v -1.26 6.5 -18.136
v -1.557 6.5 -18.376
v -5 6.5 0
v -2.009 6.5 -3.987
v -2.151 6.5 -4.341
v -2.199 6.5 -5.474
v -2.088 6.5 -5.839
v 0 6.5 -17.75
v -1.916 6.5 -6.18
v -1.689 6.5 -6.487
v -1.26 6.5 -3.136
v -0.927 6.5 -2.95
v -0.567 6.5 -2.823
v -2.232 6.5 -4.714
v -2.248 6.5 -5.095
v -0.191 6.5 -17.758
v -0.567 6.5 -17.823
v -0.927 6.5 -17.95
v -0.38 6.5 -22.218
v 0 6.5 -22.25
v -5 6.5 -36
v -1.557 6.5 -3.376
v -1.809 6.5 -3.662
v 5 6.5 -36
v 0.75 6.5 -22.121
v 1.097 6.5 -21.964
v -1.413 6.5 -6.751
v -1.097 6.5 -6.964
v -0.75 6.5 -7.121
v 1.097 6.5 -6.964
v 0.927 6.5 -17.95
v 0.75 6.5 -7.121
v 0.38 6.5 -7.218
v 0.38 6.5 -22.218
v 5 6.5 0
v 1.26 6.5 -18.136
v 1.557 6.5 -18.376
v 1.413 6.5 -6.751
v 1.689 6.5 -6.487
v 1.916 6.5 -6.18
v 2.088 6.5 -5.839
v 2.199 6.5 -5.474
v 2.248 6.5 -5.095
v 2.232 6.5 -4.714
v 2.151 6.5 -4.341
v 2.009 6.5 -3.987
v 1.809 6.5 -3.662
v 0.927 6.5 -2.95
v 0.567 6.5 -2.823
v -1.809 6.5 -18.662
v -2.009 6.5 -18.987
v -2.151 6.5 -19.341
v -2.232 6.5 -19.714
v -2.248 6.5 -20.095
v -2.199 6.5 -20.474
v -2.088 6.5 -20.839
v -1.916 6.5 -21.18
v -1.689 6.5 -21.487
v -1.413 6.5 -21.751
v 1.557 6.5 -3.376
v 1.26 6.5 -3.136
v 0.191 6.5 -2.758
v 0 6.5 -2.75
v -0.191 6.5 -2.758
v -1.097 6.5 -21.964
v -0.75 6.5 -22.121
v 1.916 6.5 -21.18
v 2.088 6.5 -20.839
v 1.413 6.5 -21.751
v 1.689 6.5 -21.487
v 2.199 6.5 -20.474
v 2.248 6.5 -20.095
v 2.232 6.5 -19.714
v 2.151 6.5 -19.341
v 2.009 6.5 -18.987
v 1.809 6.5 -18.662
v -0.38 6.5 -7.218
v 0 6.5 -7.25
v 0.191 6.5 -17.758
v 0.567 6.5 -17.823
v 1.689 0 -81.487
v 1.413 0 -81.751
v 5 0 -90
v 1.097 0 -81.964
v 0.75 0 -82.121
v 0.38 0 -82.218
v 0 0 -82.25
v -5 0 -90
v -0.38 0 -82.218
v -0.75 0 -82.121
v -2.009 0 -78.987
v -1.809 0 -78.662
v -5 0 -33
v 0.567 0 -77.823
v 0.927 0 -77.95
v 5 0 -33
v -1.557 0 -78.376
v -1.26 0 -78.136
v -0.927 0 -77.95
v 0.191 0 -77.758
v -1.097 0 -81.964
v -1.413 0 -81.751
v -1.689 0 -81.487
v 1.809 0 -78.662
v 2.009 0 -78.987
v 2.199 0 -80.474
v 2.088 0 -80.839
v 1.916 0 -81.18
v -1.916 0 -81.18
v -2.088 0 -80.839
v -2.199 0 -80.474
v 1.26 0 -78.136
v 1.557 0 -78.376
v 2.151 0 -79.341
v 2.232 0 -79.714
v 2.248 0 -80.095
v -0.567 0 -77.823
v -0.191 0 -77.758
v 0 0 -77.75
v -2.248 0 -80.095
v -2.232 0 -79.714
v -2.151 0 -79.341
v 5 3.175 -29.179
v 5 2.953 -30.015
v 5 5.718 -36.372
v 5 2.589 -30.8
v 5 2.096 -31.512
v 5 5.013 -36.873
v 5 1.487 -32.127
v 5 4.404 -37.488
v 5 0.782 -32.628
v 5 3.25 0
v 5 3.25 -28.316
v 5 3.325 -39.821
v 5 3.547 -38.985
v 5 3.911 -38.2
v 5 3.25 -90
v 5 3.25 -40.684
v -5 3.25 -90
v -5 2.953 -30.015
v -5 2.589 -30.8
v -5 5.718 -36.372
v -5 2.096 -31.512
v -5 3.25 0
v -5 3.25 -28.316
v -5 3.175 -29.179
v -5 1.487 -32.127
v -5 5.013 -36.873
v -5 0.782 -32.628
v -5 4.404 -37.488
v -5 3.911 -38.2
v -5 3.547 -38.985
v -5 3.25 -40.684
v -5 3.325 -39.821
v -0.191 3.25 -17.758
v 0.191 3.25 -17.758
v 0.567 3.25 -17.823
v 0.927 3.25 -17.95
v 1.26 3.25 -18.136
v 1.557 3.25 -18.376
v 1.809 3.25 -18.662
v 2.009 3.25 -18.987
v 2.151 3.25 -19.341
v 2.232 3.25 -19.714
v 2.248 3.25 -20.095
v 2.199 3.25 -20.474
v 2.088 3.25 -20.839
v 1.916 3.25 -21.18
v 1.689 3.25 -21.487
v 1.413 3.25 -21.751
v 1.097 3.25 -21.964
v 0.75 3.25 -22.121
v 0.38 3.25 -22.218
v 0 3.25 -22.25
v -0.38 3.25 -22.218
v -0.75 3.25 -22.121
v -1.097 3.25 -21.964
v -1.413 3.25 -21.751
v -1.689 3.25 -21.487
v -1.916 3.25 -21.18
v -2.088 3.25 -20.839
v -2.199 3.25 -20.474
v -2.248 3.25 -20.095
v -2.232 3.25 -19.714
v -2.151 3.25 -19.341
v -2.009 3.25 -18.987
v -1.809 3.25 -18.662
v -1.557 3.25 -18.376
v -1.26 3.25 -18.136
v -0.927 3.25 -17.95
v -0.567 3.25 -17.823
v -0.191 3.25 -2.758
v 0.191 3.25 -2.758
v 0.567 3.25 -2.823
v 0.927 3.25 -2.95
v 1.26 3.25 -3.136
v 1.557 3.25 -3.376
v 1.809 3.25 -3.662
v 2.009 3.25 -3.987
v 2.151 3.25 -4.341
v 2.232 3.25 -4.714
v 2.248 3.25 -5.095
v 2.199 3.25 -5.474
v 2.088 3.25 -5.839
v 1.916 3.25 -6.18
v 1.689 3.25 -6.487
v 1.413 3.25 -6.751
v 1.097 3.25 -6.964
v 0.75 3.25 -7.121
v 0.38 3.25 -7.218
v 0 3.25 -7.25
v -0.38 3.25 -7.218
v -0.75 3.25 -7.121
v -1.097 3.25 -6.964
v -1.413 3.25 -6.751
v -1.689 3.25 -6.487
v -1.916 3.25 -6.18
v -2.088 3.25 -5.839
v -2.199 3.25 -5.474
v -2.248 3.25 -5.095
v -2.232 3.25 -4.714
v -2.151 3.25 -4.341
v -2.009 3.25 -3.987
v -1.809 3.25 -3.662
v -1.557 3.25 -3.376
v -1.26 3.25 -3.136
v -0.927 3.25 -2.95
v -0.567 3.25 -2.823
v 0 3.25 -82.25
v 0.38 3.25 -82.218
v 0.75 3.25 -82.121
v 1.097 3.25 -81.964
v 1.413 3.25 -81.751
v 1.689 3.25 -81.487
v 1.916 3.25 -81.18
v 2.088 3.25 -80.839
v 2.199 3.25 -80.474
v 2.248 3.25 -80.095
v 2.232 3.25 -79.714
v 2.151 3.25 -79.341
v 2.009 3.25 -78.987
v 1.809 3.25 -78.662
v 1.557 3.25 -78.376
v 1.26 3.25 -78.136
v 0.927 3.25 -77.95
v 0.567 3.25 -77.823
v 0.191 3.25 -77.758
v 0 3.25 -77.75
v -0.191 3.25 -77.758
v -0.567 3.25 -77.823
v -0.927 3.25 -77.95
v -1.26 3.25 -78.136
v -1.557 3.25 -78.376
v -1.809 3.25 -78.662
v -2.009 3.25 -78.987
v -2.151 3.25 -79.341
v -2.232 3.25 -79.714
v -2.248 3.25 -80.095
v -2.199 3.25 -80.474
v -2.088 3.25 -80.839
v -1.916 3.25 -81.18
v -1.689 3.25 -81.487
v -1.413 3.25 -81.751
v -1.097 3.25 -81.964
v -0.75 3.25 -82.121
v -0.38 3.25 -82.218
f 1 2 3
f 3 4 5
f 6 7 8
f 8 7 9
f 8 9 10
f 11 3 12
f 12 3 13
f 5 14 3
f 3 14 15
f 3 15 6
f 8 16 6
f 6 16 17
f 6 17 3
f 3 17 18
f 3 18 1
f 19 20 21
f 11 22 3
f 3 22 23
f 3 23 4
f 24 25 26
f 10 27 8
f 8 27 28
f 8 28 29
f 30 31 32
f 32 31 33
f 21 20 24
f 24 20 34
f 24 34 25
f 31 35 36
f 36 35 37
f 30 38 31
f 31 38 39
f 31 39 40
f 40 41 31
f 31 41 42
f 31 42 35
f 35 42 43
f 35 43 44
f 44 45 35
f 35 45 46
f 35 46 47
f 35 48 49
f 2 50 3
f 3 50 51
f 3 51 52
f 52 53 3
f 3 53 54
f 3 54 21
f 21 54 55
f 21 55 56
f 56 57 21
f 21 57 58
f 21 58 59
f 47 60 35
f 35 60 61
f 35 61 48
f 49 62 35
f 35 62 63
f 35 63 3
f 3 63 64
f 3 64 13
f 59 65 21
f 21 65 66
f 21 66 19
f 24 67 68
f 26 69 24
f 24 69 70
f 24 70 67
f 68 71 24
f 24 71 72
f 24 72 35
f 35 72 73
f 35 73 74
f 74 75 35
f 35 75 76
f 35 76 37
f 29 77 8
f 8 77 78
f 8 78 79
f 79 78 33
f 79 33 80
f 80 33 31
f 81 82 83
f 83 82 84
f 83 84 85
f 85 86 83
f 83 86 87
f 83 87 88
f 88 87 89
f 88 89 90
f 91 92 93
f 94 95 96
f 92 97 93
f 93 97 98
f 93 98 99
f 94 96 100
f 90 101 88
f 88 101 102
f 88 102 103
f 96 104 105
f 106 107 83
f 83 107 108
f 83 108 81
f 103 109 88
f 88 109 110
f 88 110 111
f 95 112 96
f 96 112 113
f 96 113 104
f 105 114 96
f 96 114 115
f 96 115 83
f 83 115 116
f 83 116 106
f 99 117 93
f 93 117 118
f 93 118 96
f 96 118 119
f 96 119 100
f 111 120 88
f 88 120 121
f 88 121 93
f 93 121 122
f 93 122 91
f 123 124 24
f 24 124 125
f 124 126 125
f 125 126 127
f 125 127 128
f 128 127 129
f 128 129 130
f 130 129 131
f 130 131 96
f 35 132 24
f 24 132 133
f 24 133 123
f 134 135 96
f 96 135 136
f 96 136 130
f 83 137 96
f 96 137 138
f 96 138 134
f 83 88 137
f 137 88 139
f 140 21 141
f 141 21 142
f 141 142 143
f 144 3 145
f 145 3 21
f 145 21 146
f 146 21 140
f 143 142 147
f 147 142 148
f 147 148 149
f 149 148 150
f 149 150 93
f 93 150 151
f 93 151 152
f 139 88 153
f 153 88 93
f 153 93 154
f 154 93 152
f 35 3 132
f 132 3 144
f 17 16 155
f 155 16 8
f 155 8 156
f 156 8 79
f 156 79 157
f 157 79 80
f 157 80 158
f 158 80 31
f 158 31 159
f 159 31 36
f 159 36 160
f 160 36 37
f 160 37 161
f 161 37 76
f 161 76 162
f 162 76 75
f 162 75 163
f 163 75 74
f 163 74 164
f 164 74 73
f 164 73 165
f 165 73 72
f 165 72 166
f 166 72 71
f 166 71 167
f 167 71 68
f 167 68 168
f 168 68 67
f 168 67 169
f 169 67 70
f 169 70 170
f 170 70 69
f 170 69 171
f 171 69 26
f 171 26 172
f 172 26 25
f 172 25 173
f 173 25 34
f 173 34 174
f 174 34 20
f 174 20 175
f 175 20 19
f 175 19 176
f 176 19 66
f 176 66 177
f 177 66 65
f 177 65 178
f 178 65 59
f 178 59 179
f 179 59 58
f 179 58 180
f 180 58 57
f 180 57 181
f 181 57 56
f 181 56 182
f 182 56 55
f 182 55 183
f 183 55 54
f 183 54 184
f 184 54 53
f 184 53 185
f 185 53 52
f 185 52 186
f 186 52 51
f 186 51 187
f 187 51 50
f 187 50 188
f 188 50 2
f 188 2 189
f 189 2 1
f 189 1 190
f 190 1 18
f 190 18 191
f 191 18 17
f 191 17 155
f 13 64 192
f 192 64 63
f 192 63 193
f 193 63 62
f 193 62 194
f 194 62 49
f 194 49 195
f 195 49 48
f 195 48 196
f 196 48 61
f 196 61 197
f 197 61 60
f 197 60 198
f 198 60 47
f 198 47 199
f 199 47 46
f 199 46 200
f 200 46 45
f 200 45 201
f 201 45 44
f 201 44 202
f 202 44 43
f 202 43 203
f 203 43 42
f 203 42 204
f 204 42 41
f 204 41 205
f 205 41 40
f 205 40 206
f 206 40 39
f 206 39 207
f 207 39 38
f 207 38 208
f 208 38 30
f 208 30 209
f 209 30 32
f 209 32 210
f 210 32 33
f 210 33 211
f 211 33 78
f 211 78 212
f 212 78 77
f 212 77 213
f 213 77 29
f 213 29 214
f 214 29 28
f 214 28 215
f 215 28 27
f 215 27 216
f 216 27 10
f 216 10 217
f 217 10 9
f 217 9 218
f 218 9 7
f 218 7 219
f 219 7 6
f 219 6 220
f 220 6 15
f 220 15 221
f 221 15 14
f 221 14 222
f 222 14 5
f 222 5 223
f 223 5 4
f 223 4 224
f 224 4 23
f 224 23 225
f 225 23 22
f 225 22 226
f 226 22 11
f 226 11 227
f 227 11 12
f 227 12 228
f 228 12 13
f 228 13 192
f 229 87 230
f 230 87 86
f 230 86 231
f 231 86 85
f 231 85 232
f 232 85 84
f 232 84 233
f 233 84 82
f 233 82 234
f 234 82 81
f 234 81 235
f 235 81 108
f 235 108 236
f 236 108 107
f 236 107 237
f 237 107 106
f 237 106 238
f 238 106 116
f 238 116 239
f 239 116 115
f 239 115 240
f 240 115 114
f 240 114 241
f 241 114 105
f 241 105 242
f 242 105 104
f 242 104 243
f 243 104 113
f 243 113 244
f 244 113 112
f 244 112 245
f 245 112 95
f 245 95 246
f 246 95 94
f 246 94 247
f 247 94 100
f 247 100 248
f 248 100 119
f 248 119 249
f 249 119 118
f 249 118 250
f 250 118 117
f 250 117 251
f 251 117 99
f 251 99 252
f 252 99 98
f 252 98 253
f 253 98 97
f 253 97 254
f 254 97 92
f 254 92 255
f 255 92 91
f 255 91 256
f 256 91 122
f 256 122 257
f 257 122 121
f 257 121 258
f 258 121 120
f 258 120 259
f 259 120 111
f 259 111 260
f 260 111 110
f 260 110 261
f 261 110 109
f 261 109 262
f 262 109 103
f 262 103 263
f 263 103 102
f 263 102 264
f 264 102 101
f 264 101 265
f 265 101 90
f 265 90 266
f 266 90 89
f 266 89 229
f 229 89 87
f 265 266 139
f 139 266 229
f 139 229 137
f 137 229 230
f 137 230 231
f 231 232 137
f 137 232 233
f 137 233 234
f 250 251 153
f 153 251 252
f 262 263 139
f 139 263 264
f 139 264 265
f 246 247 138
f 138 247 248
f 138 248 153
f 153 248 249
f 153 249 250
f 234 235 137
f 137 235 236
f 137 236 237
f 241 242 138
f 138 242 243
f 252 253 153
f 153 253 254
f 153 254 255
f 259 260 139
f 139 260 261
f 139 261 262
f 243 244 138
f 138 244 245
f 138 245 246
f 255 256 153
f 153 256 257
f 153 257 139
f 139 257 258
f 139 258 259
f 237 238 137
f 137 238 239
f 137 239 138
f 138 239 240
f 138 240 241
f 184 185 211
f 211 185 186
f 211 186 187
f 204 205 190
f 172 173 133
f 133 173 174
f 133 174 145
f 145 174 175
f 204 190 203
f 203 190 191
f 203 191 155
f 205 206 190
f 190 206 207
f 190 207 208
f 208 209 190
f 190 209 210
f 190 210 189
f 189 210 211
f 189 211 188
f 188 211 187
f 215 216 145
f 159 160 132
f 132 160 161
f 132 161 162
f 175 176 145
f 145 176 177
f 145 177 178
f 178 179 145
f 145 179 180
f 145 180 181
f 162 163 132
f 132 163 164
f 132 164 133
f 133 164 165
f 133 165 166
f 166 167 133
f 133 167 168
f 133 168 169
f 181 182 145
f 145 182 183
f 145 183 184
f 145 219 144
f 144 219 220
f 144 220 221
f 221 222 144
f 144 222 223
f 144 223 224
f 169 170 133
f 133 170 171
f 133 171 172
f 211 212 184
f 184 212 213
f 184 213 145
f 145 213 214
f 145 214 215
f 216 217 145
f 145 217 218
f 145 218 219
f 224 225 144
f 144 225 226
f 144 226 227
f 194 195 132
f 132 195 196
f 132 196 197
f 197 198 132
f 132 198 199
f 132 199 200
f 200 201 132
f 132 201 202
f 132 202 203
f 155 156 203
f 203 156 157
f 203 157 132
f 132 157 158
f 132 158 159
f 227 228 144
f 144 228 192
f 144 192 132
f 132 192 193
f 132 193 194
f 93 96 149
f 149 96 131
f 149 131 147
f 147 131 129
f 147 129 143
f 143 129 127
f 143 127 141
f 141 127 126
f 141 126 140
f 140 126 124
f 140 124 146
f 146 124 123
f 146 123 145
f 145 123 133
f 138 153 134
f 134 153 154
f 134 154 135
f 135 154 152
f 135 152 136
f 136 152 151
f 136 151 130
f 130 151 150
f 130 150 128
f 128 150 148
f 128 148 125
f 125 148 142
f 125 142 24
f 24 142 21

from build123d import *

# Parameters (mm, degrees)
SKETCH1_R               = 2.25
BOSS_EXTRUDE1_DEPTH     = 6.5
CUT_EXTRUDE1_DEPTH      = 5
CUT_EXTRUDE1_DEPTH_BACK = 5
SKETCH2_W               = 33
SKETCH2_H               = 3.25
SKETCH2_W_2             = 54
FILLET1_R               = 5


with BuildPart() as part:
    # Sketch1 → Boss-Extrude1 (new body)
    with BuildSketch(Plane(origin=(0, 0, 0), x_dir=(1, 0, 0), z_dir=(0, 1, 0))):
        Polygon((0, 0), (-5, 0), (-5, 90), (5, 90), (5, 0), align=None)
        with Locations(Location((0, 20, 0), (0, 0, 90))):
            Circle(SKETCH1_R, mode=Mode.SUBTRACT)
        with Locations(Location((0, 5, 0), (0, 0, 90))):
            Circle(SKETCH1_R, mode=Mode.SUBTRACT)
        with Locations(Location((0, 80, 0), (0, 0, 90))):
            Circle(SKETCH1_R, mode=Mode.SUBTRACT)
    extrude(amount=BOSS_EXTRUDE1_DEPTH)

    # Sketch2 → Cut-Extrude1 (cut, two sides: drawn at the far end of the back side and taken through both)
    with BuildSketch(Plane(origin=(0, 0, 0), x_dir=(0, 0, -1), z_dir=(1, 0, 0)).offset(-CUT_EXTRUDE1_DEPTH_BACK)):
        with Locations((16.5, 1.625)):
            Rectangle(SKETCH2_W, SKETCH2_H)
        with Locations((63, 4.875)):
            Rectangle(SKETCH2_W_2, SKETCH2_H)
    extrude(amount=CUT_EXTRUDE1_DEPTH + CUT_EXTRUDE1_DEPTH_BACK, mode=Mode.SUBTRACT)

    # Fillet1
    # the kernel refuses this fillet: 5 mm, written as the material it adds along each edge
    with BuildSketch(Plane(origin=(5, 3.25, -33), x_dir=(0, 0, 1), z_dir=(-1, 0, 0))) as fillet1_piece_1:
        with BuildLine():
            CenterArc((4.683748499, -5), FILLET1_R, 90, 69.512684885)
            Line((0, -3.25), (-0.09367497, -3.215))
            ThreePointArc((-0.09367497, -3.215), (-0.1, -1.625), (-0.1, 0))
            Line((-0.1, 0), (0, 0.1))
            Line((0, 0.1), (4.683748499, 0.1))
            Line((4.683748499, 0.1), (4.683748499, 0))
        make_face()
    extrude(amount=10)
    with BuildSketch(Plane(origin=(-5, 3.25, -36), x_dir=(0, 0, -1), z_dir=(1, 0, 0))) as fillet1_piece_2:
        with BuildLine():
            CenterArc((4.683748499, 5), FILLET1_R, 200.487315115, 69.512684885)
            Line((0, 3.25), (-0.09367497, 3.215))
            ThreePointArc((-0.09367497, 3.215), (-0.1, 1.625), (-0.1, 0))
            Line((-0.1, 0), (0, -0.1))
            Line((0, -0.1), (4.683748499, -0.1))
            Line((4.683748499, -0.1), (4.683748499, 0))
        make_face()
    extrude(amount=10)


solid = part.part
